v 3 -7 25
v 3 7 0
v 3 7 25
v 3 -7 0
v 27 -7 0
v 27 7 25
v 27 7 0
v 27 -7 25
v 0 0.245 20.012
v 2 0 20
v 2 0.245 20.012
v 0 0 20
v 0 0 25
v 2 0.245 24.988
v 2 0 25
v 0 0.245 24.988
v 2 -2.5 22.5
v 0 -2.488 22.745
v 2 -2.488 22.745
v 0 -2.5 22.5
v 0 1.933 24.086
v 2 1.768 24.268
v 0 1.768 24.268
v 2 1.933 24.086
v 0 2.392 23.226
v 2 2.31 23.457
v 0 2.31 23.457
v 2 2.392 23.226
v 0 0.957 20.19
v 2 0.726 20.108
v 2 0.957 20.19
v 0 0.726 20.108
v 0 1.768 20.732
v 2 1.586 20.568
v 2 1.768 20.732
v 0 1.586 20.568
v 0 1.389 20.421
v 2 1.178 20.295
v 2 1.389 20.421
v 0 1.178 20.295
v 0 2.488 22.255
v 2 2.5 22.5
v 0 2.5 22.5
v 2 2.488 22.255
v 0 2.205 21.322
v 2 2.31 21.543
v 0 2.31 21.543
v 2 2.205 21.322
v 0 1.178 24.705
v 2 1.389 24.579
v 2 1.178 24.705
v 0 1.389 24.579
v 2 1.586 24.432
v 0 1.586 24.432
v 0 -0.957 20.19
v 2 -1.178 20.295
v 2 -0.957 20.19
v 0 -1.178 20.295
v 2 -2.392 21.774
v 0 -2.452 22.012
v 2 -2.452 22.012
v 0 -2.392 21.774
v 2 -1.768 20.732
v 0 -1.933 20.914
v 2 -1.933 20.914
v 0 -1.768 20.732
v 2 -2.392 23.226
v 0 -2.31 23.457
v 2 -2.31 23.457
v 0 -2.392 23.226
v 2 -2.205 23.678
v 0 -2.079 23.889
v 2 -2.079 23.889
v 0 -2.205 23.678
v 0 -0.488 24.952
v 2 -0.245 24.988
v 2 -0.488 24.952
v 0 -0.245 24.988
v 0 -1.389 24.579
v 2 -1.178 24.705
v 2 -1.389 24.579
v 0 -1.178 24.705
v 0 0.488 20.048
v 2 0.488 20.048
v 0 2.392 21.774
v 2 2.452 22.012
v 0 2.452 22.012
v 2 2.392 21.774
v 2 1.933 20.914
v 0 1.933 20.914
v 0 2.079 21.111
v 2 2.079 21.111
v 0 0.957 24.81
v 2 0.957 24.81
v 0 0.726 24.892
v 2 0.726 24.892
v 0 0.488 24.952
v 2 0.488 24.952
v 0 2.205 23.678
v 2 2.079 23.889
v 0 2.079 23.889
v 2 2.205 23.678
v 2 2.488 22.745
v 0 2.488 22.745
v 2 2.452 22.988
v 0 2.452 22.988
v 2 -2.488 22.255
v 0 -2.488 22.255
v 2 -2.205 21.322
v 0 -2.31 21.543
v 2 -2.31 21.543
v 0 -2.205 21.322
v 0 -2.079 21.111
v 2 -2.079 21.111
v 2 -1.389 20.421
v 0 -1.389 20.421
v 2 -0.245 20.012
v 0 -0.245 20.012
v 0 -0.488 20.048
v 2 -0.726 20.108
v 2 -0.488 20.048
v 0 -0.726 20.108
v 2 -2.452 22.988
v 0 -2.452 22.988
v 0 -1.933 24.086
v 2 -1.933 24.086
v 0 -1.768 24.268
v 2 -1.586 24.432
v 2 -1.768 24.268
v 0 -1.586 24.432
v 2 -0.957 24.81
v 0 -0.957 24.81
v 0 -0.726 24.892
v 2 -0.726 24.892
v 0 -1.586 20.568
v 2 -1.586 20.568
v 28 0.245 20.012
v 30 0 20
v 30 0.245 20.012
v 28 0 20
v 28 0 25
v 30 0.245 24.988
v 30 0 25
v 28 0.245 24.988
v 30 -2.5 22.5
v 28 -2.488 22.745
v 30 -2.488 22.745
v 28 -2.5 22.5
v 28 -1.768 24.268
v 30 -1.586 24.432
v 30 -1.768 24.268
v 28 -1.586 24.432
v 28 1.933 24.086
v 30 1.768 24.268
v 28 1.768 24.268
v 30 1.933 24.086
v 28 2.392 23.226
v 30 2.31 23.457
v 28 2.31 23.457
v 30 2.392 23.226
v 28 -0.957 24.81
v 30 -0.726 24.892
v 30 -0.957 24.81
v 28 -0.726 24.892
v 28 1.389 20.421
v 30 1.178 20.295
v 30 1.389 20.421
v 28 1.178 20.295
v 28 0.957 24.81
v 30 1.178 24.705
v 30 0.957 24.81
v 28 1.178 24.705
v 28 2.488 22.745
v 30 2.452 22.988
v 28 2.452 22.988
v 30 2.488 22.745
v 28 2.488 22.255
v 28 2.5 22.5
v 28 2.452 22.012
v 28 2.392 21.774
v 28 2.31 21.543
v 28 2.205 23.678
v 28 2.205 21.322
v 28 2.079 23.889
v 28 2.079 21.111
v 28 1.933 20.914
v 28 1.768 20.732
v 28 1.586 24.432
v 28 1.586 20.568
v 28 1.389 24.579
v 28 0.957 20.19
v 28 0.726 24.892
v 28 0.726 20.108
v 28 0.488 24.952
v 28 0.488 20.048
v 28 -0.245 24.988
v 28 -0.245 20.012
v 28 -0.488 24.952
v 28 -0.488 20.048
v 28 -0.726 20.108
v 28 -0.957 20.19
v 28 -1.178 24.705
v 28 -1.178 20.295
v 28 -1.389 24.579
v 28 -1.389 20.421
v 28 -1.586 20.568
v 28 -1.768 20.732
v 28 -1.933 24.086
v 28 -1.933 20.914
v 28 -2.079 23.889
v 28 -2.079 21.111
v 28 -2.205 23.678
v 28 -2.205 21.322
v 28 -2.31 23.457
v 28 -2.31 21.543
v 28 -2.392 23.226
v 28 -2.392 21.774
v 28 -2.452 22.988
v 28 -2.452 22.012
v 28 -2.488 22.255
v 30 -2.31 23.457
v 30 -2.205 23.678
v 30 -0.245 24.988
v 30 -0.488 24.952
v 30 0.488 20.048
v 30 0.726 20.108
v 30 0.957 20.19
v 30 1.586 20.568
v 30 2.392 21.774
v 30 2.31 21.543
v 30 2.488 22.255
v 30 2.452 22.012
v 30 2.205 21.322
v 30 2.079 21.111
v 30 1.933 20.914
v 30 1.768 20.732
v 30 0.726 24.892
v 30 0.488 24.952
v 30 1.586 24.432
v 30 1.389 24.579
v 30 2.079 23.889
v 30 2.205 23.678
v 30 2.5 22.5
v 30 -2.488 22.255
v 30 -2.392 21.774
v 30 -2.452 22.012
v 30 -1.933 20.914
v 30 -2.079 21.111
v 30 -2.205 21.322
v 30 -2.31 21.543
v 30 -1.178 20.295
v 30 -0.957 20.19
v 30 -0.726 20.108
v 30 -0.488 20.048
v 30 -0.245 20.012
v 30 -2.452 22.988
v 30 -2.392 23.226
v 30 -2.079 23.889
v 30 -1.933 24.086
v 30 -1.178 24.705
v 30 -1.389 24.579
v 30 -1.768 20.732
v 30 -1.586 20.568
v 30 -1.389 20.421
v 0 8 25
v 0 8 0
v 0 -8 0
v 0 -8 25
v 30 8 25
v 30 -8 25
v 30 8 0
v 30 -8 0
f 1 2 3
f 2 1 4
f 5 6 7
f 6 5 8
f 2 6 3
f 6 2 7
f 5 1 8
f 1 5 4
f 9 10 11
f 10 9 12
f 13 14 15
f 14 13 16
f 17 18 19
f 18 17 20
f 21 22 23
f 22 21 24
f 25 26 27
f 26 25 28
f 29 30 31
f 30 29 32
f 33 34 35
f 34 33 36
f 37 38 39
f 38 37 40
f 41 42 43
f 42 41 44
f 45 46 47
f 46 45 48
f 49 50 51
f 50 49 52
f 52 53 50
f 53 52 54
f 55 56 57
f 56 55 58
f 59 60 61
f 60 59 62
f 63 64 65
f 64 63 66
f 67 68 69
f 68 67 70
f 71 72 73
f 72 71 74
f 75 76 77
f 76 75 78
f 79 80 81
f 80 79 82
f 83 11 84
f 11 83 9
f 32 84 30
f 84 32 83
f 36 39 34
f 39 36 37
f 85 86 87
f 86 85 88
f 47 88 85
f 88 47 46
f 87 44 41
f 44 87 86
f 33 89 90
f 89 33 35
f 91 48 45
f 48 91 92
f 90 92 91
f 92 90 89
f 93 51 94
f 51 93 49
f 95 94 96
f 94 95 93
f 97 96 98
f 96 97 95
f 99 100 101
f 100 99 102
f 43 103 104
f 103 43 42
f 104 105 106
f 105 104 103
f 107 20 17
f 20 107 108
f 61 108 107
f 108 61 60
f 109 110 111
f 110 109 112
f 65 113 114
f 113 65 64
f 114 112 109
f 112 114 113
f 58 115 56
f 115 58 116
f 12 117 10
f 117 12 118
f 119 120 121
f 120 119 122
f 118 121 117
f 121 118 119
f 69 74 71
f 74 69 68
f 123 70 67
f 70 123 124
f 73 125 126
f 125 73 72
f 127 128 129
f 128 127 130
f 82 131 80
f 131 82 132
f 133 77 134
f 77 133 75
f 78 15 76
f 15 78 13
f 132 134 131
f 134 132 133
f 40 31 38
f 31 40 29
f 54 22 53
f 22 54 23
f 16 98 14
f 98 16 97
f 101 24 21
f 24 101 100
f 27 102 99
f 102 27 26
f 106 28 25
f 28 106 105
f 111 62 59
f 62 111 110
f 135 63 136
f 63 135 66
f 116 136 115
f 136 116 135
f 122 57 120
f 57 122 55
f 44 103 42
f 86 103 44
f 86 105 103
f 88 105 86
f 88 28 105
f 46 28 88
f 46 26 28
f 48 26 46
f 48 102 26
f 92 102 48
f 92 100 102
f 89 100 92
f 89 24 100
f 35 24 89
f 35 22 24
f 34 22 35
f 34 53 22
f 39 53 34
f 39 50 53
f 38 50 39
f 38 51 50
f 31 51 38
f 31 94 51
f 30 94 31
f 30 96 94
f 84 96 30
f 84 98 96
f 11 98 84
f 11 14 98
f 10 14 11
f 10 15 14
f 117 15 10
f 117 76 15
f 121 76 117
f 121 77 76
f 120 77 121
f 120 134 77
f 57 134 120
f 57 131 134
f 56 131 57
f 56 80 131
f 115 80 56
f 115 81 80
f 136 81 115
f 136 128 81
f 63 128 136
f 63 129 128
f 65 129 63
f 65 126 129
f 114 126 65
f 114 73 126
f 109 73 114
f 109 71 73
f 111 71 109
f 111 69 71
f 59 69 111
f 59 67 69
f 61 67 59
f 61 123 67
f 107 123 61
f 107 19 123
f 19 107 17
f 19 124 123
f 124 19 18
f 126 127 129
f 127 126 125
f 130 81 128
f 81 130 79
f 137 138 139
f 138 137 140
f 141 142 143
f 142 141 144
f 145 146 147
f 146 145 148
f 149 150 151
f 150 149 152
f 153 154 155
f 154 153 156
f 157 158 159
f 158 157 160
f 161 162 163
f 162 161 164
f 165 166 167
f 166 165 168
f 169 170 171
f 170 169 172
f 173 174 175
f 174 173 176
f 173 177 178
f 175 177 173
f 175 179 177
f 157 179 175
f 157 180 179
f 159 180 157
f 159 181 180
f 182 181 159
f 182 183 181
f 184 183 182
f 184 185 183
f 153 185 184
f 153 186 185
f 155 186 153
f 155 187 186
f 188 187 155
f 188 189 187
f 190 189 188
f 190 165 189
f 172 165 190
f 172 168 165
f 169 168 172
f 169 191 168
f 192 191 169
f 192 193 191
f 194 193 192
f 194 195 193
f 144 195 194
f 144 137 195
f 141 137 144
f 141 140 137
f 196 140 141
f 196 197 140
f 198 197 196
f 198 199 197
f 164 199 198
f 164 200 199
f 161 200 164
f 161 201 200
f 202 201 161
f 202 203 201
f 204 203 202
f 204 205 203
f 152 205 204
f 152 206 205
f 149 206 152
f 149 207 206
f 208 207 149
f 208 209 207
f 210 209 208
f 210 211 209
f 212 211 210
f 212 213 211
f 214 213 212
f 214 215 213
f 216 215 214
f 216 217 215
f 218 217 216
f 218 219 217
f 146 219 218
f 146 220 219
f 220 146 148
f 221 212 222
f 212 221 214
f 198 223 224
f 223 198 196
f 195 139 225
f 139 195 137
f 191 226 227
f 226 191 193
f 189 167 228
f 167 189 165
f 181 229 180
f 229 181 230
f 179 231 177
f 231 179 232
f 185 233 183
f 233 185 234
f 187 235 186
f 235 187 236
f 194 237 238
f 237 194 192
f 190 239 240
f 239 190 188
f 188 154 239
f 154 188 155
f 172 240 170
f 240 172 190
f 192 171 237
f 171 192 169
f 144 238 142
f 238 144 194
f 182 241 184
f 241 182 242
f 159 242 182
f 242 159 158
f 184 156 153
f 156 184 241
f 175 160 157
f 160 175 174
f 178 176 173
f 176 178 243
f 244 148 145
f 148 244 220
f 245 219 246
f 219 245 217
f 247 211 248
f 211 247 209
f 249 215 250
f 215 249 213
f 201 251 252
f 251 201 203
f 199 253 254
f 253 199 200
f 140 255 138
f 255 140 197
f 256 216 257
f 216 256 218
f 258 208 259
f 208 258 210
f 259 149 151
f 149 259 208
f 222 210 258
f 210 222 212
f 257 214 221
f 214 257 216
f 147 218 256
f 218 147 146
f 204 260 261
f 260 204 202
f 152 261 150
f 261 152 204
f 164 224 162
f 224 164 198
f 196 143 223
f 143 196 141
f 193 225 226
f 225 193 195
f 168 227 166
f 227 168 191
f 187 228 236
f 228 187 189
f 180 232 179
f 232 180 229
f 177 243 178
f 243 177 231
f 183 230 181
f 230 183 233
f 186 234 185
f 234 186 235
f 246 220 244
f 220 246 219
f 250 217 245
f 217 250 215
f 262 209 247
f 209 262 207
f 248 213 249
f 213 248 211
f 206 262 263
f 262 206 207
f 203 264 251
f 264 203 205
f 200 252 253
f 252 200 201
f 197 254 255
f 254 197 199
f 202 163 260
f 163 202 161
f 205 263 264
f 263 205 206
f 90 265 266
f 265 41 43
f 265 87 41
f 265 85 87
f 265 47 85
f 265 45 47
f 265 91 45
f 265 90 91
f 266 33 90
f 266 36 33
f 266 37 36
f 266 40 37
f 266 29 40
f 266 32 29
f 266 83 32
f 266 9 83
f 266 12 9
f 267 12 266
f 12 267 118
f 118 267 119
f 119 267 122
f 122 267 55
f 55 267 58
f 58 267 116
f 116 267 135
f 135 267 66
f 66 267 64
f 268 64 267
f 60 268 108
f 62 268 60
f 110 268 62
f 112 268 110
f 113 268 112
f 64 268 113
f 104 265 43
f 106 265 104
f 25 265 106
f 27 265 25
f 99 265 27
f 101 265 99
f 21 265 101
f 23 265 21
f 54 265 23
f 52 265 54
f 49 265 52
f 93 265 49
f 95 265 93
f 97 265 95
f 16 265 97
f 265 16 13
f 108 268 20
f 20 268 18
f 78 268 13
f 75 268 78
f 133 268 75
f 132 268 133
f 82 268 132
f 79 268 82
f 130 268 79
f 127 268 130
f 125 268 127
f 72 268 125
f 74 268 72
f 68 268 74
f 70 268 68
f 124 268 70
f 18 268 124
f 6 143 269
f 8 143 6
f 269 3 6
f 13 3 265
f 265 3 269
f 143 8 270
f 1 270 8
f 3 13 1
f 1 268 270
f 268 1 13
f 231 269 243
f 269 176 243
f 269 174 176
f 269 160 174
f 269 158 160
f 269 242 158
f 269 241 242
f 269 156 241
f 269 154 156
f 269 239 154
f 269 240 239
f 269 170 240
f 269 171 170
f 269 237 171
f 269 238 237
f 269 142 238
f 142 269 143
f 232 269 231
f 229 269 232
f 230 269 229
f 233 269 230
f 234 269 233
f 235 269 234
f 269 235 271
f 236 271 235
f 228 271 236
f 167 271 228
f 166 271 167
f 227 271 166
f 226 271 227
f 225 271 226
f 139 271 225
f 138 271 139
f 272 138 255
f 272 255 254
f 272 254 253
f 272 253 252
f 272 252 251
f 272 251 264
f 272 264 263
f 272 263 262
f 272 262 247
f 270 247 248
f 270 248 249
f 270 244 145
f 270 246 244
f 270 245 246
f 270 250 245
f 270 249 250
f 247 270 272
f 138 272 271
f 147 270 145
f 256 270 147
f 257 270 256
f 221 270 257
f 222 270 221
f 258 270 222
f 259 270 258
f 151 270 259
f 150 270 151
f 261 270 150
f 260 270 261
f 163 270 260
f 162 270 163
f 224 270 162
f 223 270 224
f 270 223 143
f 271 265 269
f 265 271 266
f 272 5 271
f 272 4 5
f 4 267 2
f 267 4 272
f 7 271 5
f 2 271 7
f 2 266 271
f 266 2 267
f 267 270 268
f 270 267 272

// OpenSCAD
// ============================================================
// B2 - 中段指段 (Middle Phalanx)
// 单位: 毫米 (mm)
//
// 坐标系:
//   +X 朝向指尖 (长度方向)
//   Y  左右 (宽度)
//   Z  上下, Z=0 是底面
//
// 与 B1 的对比:
//   - 尺寸一致 (30×16×25)
//   - B2 两端都是关节孔 (连 B1 和 B3)
//   - B2 没有螺丝孔 (用关节轴浮动连接, 不固定)
//   - 这就是"中间段"的特点: 完全是转动副
// ============================================================

/* === [全局渲染质量] === */
$fn = 64;

/* === [主壳尺寸] -- 与 B1 完全一致 === */
len_x   = 30;     // 长度 -- B1 也是 30
wid_y   = 16;     // 宽度 -- B1 也是 16
hgt_z   = 25;     // 高度 -- B1 也是 25

/* === [内腔] -- 同 B1 === */
wall_x  = 3;      // 前后壁厚
wall_y  = 1;      // 左右壁厚 (薄, 待优化)
cavity_through = true;  // 内腔穿透 Z (留作"框")

/* === [关节孔] -- 两端都有 === */
joint_r  = 2.5;   // ⌀5 -- 与 B1 一致
joint_z  = 22.5;  // Z 位置 -- 与 B1 一致

// ============================================================
// 模块 (跟 B1 同款, 只是螺丝孔换成两端关节孔)
// ============================================================

module main_shell() {
    translate([len_x/2, 0, hgt_z/2])
        cube([len_x, wid_y, hgt_z], center = true);
}

module inner_cavity() {
    cavity_h = cavity_through ? (hgt_z + 1) : (hgt_z - 6);
    translate([len_x/2, 0, hgt_z/2])
        cube([
            len_x - 2*wall_x,
            wid_y - 2*wall_y,
            cavity_h
        ], center = true);
}

module input_joint_hole() {
    // 输入轴孔: X=0 端面 (朝 B1, 自己的左侧)
    translate([0, 0, joint_z])
        rotate([0, 90, 0])
        cylinder(h = wall_x + 1, r = joint_r, center = true);
}

module output_joint_hole() {
    // 输出轴孔: X=len_x 端面 (朝 B3, 自己的右侧)
    translate([len_x, 0, joint_z])
        rotate([0, 90, 0])
        cylinder(h = wall_x + 1, r = joint_r, center = true);
}

// ============================================================
// 组装
// ============================================================

difference() {
    main_shell();
    union() {
        inner_cavity();
        input_joint_hole();
        output_joint_hole();
    }
}

// ============================================================
// 调试输出
// ============================================================
echo(str("B2 外形: ", len_x, " x ", wid_y, " x ", hgt_z, " mm"));
echo(str("B2 关节孔: ⌀", joint_r*2, " at Z=", joint_z, " mm, 两端"));

/* ============================================================
 * 设计笔记:
 *
 * B2 与 B1 的核心区别:
 *
 *   B1: 手掌端 ─[4 螺丝]─ 实心 ─[关节]─ 自由端
 *   B2: 自由端  ─[关节]── 中空 ──[关节]─ 自由端
 *   B3: 自由端  ─[关节]── 中空 ──────── 实心指尖
 *
 * 三段拼成一根手指, 用 ⌀5 的轴串起来.
 * 轴贯穿 B1 输出孔 + B2 输入孔 + B2 输出孔 + B3 输入孔.
 * ============================================================ */
